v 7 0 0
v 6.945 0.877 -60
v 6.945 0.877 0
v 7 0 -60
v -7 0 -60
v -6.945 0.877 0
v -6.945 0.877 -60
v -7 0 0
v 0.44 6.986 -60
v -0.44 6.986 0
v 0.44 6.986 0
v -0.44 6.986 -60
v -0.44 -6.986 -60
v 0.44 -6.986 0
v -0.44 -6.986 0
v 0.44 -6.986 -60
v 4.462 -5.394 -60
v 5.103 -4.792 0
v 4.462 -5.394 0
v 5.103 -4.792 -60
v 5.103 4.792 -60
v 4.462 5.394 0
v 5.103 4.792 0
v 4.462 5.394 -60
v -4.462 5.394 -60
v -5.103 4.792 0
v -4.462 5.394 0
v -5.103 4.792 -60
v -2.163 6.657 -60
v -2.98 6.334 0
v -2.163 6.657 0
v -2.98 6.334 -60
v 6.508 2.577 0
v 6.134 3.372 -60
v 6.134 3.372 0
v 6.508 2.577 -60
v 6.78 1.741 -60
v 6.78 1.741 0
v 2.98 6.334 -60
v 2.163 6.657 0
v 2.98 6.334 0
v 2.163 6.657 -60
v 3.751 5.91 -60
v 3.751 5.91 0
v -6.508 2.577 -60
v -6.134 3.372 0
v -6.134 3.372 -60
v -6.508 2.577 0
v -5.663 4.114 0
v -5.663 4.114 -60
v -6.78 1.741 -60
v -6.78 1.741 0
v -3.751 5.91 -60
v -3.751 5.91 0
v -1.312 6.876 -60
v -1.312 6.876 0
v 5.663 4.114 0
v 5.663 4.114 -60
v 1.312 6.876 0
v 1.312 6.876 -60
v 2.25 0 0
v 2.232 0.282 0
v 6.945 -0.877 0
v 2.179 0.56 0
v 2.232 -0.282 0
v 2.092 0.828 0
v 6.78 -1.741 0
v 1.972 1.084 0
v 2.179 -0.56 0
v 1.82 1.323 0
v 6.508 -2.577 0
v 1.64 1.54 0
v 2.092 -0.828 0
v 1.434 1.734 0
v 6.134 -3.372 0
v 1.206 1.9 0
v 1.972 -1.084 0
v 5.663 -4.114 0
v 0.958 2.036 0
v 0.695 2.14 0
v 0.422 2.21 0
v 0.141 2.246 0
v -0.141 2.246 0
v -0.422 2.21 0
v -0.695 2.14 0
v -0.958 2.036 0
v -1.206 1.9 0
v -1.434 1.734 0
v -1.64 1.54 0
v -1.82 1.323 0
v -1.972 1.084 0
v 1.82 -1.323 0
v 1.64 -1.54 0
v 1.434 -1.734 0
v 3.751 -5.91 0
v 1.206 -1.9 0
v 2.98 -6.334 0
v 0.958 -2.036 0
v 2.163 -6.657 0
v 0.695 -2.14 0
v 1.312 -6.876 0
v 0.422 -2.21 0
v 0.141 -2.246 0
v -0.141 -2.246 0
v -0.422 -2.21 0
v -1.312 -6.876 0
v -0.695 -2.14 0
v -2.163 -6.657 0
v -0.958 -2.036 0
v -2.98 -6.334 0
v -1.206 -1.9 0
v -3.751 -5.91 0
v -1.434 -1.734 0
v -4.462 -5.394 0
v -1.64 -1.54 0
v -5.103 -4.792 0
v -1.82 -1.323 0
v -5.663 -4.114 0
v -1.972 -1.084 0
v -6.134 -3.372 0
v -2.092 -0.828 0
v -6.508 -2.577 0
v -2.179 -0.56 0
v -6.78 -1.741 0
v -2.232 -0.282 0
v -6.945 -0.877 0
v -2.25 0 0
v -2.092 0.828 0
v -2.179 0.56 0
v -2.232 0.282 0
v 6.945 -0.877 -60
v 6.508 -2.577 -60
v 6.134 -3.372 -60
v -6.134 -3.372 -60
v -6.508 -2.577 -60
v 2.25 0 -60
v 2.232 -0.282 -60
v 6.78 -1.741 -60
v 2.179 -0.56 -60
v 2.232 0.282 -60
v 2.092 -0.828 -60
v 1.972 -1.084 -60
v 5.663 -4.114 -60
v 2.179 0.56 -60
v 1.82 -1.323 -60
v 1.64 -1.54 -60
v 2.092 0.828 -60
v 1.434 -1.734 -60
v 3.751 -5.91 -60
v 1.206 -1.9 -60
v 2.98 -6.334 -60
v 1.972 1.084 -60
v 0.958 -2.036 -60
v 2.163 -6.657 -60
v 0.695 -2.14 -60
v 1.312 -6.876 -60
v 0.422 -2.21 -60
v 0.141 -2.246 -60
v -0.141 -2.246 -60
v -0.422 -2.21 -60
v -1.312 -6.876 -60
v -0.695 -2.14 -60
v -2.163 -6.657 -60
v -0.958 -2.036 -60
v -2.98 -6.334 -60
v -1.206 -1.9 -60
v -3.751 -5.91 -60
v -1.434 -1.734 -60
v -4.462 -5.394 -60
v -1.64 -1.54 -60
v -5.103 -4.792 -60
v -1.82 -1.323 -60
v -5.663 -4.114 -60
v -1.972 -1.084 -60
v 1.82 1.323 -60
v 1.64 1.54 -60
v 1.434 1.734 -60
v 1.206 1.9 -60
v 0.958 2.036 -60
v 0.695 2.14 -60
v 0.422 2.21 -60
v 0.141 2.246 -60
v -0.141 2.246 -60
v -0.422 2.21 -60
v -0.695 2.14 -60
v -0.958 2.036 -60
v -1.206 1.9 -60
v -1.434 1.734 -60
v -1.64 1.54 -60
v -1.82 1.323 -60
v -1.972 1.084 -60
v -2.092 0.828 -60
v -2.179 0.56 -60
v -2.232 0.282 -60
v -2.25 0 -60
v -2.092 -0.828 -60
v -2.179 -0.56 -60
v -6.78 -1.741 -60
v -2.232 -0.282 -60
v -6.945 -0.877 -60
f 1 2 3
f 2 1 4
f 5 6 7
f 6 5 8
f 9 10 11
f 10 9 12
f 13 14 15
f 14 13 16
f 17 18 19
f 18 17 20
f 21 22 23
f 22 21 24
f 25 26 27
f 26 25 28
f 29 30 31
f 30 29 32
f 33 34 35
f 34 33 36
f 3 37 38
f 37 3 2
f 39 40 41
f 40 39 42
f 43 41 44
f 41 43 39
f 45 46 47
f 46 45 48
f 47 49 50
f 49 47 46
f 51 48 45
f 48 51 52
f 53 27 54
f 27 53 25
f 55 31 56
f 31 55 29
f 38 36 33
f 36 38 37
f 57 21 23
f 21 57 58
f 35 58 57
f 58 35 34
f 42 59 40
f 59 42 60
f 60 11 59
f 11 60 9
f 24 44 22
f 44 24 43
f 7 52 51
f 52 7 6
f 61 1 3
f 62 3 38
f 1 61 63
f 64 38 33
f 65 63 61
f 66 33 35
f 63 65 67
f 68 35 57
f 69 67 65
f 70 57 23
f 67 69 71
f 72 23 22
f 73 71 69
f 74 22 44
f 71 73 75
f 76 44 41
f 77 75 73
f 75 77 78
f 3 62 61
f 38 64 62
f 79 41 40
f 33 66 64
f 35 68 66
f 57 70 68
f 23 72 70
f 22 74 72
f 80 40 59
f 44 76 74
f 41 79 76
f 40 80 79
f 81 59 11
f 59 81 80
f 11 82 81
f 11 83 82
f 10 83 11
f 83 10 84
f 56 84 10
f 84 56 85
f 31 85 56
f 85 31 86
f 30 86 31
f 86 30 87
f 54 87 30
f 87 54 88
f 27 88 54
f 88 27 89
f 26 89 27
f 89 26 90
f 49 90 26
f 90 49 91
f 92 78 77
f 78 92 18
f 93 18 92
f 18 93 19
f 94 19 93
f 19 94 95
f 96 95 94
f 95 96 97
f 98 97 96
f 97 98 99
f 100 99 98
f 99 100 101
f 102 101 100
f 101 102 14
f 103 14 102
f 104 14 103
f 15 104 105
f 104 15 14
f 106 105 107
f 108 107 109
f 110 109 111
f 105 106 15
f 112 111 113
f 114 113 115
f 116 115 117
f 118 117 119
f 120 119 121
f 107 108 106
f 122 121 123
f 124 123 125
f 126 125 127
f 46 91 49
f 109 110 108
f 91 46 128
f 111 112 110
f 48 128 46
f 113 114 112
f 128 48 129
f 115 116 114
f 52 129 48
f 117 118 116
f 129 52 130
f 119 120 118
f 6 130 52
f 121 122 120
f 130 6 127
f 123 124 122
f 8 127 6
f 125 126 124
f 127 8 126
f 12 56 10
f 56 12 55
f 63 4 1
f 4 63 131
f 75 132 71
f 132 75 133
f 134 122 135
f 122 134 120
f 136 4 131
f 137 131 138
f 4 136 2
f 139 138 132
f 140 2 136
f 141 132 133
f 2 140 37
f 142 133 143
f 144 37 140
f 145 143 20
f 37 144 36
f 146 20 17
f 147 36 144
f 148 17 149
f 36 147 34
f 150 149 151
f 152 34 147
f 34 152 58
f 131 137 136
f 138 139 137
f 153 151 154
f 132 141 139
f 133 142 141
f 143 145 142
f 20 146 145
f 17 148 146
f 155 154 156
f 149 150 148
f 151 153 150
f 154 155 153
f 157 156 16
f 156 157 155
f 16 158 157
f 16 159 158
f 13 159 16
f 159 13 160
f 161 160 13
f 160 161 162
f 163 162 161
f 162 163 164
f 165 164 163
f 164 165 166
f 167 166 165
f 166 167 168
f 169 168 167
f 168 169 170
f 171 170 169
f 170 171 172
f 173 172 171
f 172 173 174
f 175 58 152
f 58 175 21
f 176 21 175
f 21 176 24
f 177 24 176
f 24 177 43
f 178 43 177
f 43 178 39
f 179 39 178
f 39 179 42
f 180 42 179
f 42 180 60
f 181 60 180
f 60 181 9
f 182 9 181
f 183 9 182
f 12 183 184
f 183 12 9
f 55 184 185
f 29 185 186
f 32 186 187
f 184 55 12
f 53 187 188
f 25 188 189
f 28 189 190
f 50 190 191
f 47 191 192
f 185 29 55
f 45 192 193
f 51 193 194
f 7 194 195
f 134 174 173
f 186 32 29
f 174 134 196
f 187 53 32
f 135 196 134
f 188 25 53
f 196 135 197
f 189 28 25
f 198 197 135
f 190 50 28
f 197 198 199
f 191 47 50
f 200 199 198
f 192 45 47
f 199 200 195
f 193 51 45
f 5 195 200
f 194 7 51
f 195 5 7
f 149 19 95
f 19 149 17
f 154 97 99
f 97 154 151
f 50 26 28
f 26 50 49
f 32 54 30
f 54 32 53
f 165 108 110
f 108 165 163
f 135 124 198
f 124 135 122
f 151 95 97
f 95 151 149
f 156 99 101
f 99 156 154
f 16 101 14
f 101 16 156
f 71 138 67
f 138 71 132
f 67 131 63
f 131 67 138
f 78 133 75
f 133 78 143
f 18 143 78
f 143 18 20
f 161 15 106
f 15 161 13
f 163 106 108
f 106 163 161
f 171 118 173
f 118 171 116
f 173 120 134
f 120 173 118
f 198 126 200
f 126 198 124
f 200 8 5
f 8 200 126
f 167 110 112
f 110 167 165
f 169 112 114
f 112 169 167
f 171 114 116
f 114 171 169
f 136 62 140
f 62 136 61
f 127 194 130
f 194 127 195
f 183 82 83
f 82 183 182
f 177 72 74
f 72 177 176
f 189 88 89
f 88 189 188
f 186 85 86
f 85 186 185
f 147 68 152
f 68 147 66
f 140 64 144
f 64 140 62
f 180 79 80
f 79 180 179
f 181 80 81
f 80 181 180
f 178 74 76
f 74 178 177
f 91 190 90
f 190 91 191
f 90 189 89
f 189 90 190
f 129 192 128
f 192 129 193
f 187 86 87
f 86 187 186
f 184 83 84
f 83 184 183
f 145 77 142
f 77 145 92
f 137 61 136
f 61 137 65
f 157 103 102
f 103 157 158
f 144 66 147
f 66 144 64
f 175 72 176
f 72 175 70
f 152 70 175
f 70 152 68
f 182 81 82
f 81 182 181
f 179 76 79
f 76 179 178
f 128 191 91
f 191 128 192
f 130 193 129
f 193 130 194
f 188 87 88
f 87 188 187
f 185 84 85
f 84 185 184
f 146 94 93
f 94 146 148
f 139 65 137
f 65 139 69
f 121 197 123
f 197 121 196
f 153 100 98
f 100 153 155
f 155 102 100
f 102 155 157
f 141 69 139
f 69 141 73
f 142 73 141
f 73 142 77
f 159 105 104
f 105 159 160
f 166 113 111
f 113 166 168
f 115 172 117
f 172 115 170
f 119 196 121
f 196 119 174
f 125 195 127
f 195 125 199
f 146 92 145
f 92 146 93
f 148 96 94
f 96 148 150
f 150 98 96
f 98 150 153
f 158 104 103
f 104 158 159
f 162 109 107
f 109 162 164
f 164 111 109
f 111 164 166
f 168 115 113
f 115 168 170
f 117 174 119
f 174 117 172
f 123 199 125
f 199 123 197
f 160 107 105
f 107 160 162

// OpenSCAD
$fn = 50;


difference() {
	union() {
		translate(v = [0, 0, -60.0000000000]) {
			cylinder(h = 60, r = 7.0000000000);
		}
		cylinder(h = 0, r = 16.0000000000);
	}
	union() {
		#translate(v = [0, 0, -60]) {
			cylinder(h = 60, r = 2.2500000000);
		}
	}
}
